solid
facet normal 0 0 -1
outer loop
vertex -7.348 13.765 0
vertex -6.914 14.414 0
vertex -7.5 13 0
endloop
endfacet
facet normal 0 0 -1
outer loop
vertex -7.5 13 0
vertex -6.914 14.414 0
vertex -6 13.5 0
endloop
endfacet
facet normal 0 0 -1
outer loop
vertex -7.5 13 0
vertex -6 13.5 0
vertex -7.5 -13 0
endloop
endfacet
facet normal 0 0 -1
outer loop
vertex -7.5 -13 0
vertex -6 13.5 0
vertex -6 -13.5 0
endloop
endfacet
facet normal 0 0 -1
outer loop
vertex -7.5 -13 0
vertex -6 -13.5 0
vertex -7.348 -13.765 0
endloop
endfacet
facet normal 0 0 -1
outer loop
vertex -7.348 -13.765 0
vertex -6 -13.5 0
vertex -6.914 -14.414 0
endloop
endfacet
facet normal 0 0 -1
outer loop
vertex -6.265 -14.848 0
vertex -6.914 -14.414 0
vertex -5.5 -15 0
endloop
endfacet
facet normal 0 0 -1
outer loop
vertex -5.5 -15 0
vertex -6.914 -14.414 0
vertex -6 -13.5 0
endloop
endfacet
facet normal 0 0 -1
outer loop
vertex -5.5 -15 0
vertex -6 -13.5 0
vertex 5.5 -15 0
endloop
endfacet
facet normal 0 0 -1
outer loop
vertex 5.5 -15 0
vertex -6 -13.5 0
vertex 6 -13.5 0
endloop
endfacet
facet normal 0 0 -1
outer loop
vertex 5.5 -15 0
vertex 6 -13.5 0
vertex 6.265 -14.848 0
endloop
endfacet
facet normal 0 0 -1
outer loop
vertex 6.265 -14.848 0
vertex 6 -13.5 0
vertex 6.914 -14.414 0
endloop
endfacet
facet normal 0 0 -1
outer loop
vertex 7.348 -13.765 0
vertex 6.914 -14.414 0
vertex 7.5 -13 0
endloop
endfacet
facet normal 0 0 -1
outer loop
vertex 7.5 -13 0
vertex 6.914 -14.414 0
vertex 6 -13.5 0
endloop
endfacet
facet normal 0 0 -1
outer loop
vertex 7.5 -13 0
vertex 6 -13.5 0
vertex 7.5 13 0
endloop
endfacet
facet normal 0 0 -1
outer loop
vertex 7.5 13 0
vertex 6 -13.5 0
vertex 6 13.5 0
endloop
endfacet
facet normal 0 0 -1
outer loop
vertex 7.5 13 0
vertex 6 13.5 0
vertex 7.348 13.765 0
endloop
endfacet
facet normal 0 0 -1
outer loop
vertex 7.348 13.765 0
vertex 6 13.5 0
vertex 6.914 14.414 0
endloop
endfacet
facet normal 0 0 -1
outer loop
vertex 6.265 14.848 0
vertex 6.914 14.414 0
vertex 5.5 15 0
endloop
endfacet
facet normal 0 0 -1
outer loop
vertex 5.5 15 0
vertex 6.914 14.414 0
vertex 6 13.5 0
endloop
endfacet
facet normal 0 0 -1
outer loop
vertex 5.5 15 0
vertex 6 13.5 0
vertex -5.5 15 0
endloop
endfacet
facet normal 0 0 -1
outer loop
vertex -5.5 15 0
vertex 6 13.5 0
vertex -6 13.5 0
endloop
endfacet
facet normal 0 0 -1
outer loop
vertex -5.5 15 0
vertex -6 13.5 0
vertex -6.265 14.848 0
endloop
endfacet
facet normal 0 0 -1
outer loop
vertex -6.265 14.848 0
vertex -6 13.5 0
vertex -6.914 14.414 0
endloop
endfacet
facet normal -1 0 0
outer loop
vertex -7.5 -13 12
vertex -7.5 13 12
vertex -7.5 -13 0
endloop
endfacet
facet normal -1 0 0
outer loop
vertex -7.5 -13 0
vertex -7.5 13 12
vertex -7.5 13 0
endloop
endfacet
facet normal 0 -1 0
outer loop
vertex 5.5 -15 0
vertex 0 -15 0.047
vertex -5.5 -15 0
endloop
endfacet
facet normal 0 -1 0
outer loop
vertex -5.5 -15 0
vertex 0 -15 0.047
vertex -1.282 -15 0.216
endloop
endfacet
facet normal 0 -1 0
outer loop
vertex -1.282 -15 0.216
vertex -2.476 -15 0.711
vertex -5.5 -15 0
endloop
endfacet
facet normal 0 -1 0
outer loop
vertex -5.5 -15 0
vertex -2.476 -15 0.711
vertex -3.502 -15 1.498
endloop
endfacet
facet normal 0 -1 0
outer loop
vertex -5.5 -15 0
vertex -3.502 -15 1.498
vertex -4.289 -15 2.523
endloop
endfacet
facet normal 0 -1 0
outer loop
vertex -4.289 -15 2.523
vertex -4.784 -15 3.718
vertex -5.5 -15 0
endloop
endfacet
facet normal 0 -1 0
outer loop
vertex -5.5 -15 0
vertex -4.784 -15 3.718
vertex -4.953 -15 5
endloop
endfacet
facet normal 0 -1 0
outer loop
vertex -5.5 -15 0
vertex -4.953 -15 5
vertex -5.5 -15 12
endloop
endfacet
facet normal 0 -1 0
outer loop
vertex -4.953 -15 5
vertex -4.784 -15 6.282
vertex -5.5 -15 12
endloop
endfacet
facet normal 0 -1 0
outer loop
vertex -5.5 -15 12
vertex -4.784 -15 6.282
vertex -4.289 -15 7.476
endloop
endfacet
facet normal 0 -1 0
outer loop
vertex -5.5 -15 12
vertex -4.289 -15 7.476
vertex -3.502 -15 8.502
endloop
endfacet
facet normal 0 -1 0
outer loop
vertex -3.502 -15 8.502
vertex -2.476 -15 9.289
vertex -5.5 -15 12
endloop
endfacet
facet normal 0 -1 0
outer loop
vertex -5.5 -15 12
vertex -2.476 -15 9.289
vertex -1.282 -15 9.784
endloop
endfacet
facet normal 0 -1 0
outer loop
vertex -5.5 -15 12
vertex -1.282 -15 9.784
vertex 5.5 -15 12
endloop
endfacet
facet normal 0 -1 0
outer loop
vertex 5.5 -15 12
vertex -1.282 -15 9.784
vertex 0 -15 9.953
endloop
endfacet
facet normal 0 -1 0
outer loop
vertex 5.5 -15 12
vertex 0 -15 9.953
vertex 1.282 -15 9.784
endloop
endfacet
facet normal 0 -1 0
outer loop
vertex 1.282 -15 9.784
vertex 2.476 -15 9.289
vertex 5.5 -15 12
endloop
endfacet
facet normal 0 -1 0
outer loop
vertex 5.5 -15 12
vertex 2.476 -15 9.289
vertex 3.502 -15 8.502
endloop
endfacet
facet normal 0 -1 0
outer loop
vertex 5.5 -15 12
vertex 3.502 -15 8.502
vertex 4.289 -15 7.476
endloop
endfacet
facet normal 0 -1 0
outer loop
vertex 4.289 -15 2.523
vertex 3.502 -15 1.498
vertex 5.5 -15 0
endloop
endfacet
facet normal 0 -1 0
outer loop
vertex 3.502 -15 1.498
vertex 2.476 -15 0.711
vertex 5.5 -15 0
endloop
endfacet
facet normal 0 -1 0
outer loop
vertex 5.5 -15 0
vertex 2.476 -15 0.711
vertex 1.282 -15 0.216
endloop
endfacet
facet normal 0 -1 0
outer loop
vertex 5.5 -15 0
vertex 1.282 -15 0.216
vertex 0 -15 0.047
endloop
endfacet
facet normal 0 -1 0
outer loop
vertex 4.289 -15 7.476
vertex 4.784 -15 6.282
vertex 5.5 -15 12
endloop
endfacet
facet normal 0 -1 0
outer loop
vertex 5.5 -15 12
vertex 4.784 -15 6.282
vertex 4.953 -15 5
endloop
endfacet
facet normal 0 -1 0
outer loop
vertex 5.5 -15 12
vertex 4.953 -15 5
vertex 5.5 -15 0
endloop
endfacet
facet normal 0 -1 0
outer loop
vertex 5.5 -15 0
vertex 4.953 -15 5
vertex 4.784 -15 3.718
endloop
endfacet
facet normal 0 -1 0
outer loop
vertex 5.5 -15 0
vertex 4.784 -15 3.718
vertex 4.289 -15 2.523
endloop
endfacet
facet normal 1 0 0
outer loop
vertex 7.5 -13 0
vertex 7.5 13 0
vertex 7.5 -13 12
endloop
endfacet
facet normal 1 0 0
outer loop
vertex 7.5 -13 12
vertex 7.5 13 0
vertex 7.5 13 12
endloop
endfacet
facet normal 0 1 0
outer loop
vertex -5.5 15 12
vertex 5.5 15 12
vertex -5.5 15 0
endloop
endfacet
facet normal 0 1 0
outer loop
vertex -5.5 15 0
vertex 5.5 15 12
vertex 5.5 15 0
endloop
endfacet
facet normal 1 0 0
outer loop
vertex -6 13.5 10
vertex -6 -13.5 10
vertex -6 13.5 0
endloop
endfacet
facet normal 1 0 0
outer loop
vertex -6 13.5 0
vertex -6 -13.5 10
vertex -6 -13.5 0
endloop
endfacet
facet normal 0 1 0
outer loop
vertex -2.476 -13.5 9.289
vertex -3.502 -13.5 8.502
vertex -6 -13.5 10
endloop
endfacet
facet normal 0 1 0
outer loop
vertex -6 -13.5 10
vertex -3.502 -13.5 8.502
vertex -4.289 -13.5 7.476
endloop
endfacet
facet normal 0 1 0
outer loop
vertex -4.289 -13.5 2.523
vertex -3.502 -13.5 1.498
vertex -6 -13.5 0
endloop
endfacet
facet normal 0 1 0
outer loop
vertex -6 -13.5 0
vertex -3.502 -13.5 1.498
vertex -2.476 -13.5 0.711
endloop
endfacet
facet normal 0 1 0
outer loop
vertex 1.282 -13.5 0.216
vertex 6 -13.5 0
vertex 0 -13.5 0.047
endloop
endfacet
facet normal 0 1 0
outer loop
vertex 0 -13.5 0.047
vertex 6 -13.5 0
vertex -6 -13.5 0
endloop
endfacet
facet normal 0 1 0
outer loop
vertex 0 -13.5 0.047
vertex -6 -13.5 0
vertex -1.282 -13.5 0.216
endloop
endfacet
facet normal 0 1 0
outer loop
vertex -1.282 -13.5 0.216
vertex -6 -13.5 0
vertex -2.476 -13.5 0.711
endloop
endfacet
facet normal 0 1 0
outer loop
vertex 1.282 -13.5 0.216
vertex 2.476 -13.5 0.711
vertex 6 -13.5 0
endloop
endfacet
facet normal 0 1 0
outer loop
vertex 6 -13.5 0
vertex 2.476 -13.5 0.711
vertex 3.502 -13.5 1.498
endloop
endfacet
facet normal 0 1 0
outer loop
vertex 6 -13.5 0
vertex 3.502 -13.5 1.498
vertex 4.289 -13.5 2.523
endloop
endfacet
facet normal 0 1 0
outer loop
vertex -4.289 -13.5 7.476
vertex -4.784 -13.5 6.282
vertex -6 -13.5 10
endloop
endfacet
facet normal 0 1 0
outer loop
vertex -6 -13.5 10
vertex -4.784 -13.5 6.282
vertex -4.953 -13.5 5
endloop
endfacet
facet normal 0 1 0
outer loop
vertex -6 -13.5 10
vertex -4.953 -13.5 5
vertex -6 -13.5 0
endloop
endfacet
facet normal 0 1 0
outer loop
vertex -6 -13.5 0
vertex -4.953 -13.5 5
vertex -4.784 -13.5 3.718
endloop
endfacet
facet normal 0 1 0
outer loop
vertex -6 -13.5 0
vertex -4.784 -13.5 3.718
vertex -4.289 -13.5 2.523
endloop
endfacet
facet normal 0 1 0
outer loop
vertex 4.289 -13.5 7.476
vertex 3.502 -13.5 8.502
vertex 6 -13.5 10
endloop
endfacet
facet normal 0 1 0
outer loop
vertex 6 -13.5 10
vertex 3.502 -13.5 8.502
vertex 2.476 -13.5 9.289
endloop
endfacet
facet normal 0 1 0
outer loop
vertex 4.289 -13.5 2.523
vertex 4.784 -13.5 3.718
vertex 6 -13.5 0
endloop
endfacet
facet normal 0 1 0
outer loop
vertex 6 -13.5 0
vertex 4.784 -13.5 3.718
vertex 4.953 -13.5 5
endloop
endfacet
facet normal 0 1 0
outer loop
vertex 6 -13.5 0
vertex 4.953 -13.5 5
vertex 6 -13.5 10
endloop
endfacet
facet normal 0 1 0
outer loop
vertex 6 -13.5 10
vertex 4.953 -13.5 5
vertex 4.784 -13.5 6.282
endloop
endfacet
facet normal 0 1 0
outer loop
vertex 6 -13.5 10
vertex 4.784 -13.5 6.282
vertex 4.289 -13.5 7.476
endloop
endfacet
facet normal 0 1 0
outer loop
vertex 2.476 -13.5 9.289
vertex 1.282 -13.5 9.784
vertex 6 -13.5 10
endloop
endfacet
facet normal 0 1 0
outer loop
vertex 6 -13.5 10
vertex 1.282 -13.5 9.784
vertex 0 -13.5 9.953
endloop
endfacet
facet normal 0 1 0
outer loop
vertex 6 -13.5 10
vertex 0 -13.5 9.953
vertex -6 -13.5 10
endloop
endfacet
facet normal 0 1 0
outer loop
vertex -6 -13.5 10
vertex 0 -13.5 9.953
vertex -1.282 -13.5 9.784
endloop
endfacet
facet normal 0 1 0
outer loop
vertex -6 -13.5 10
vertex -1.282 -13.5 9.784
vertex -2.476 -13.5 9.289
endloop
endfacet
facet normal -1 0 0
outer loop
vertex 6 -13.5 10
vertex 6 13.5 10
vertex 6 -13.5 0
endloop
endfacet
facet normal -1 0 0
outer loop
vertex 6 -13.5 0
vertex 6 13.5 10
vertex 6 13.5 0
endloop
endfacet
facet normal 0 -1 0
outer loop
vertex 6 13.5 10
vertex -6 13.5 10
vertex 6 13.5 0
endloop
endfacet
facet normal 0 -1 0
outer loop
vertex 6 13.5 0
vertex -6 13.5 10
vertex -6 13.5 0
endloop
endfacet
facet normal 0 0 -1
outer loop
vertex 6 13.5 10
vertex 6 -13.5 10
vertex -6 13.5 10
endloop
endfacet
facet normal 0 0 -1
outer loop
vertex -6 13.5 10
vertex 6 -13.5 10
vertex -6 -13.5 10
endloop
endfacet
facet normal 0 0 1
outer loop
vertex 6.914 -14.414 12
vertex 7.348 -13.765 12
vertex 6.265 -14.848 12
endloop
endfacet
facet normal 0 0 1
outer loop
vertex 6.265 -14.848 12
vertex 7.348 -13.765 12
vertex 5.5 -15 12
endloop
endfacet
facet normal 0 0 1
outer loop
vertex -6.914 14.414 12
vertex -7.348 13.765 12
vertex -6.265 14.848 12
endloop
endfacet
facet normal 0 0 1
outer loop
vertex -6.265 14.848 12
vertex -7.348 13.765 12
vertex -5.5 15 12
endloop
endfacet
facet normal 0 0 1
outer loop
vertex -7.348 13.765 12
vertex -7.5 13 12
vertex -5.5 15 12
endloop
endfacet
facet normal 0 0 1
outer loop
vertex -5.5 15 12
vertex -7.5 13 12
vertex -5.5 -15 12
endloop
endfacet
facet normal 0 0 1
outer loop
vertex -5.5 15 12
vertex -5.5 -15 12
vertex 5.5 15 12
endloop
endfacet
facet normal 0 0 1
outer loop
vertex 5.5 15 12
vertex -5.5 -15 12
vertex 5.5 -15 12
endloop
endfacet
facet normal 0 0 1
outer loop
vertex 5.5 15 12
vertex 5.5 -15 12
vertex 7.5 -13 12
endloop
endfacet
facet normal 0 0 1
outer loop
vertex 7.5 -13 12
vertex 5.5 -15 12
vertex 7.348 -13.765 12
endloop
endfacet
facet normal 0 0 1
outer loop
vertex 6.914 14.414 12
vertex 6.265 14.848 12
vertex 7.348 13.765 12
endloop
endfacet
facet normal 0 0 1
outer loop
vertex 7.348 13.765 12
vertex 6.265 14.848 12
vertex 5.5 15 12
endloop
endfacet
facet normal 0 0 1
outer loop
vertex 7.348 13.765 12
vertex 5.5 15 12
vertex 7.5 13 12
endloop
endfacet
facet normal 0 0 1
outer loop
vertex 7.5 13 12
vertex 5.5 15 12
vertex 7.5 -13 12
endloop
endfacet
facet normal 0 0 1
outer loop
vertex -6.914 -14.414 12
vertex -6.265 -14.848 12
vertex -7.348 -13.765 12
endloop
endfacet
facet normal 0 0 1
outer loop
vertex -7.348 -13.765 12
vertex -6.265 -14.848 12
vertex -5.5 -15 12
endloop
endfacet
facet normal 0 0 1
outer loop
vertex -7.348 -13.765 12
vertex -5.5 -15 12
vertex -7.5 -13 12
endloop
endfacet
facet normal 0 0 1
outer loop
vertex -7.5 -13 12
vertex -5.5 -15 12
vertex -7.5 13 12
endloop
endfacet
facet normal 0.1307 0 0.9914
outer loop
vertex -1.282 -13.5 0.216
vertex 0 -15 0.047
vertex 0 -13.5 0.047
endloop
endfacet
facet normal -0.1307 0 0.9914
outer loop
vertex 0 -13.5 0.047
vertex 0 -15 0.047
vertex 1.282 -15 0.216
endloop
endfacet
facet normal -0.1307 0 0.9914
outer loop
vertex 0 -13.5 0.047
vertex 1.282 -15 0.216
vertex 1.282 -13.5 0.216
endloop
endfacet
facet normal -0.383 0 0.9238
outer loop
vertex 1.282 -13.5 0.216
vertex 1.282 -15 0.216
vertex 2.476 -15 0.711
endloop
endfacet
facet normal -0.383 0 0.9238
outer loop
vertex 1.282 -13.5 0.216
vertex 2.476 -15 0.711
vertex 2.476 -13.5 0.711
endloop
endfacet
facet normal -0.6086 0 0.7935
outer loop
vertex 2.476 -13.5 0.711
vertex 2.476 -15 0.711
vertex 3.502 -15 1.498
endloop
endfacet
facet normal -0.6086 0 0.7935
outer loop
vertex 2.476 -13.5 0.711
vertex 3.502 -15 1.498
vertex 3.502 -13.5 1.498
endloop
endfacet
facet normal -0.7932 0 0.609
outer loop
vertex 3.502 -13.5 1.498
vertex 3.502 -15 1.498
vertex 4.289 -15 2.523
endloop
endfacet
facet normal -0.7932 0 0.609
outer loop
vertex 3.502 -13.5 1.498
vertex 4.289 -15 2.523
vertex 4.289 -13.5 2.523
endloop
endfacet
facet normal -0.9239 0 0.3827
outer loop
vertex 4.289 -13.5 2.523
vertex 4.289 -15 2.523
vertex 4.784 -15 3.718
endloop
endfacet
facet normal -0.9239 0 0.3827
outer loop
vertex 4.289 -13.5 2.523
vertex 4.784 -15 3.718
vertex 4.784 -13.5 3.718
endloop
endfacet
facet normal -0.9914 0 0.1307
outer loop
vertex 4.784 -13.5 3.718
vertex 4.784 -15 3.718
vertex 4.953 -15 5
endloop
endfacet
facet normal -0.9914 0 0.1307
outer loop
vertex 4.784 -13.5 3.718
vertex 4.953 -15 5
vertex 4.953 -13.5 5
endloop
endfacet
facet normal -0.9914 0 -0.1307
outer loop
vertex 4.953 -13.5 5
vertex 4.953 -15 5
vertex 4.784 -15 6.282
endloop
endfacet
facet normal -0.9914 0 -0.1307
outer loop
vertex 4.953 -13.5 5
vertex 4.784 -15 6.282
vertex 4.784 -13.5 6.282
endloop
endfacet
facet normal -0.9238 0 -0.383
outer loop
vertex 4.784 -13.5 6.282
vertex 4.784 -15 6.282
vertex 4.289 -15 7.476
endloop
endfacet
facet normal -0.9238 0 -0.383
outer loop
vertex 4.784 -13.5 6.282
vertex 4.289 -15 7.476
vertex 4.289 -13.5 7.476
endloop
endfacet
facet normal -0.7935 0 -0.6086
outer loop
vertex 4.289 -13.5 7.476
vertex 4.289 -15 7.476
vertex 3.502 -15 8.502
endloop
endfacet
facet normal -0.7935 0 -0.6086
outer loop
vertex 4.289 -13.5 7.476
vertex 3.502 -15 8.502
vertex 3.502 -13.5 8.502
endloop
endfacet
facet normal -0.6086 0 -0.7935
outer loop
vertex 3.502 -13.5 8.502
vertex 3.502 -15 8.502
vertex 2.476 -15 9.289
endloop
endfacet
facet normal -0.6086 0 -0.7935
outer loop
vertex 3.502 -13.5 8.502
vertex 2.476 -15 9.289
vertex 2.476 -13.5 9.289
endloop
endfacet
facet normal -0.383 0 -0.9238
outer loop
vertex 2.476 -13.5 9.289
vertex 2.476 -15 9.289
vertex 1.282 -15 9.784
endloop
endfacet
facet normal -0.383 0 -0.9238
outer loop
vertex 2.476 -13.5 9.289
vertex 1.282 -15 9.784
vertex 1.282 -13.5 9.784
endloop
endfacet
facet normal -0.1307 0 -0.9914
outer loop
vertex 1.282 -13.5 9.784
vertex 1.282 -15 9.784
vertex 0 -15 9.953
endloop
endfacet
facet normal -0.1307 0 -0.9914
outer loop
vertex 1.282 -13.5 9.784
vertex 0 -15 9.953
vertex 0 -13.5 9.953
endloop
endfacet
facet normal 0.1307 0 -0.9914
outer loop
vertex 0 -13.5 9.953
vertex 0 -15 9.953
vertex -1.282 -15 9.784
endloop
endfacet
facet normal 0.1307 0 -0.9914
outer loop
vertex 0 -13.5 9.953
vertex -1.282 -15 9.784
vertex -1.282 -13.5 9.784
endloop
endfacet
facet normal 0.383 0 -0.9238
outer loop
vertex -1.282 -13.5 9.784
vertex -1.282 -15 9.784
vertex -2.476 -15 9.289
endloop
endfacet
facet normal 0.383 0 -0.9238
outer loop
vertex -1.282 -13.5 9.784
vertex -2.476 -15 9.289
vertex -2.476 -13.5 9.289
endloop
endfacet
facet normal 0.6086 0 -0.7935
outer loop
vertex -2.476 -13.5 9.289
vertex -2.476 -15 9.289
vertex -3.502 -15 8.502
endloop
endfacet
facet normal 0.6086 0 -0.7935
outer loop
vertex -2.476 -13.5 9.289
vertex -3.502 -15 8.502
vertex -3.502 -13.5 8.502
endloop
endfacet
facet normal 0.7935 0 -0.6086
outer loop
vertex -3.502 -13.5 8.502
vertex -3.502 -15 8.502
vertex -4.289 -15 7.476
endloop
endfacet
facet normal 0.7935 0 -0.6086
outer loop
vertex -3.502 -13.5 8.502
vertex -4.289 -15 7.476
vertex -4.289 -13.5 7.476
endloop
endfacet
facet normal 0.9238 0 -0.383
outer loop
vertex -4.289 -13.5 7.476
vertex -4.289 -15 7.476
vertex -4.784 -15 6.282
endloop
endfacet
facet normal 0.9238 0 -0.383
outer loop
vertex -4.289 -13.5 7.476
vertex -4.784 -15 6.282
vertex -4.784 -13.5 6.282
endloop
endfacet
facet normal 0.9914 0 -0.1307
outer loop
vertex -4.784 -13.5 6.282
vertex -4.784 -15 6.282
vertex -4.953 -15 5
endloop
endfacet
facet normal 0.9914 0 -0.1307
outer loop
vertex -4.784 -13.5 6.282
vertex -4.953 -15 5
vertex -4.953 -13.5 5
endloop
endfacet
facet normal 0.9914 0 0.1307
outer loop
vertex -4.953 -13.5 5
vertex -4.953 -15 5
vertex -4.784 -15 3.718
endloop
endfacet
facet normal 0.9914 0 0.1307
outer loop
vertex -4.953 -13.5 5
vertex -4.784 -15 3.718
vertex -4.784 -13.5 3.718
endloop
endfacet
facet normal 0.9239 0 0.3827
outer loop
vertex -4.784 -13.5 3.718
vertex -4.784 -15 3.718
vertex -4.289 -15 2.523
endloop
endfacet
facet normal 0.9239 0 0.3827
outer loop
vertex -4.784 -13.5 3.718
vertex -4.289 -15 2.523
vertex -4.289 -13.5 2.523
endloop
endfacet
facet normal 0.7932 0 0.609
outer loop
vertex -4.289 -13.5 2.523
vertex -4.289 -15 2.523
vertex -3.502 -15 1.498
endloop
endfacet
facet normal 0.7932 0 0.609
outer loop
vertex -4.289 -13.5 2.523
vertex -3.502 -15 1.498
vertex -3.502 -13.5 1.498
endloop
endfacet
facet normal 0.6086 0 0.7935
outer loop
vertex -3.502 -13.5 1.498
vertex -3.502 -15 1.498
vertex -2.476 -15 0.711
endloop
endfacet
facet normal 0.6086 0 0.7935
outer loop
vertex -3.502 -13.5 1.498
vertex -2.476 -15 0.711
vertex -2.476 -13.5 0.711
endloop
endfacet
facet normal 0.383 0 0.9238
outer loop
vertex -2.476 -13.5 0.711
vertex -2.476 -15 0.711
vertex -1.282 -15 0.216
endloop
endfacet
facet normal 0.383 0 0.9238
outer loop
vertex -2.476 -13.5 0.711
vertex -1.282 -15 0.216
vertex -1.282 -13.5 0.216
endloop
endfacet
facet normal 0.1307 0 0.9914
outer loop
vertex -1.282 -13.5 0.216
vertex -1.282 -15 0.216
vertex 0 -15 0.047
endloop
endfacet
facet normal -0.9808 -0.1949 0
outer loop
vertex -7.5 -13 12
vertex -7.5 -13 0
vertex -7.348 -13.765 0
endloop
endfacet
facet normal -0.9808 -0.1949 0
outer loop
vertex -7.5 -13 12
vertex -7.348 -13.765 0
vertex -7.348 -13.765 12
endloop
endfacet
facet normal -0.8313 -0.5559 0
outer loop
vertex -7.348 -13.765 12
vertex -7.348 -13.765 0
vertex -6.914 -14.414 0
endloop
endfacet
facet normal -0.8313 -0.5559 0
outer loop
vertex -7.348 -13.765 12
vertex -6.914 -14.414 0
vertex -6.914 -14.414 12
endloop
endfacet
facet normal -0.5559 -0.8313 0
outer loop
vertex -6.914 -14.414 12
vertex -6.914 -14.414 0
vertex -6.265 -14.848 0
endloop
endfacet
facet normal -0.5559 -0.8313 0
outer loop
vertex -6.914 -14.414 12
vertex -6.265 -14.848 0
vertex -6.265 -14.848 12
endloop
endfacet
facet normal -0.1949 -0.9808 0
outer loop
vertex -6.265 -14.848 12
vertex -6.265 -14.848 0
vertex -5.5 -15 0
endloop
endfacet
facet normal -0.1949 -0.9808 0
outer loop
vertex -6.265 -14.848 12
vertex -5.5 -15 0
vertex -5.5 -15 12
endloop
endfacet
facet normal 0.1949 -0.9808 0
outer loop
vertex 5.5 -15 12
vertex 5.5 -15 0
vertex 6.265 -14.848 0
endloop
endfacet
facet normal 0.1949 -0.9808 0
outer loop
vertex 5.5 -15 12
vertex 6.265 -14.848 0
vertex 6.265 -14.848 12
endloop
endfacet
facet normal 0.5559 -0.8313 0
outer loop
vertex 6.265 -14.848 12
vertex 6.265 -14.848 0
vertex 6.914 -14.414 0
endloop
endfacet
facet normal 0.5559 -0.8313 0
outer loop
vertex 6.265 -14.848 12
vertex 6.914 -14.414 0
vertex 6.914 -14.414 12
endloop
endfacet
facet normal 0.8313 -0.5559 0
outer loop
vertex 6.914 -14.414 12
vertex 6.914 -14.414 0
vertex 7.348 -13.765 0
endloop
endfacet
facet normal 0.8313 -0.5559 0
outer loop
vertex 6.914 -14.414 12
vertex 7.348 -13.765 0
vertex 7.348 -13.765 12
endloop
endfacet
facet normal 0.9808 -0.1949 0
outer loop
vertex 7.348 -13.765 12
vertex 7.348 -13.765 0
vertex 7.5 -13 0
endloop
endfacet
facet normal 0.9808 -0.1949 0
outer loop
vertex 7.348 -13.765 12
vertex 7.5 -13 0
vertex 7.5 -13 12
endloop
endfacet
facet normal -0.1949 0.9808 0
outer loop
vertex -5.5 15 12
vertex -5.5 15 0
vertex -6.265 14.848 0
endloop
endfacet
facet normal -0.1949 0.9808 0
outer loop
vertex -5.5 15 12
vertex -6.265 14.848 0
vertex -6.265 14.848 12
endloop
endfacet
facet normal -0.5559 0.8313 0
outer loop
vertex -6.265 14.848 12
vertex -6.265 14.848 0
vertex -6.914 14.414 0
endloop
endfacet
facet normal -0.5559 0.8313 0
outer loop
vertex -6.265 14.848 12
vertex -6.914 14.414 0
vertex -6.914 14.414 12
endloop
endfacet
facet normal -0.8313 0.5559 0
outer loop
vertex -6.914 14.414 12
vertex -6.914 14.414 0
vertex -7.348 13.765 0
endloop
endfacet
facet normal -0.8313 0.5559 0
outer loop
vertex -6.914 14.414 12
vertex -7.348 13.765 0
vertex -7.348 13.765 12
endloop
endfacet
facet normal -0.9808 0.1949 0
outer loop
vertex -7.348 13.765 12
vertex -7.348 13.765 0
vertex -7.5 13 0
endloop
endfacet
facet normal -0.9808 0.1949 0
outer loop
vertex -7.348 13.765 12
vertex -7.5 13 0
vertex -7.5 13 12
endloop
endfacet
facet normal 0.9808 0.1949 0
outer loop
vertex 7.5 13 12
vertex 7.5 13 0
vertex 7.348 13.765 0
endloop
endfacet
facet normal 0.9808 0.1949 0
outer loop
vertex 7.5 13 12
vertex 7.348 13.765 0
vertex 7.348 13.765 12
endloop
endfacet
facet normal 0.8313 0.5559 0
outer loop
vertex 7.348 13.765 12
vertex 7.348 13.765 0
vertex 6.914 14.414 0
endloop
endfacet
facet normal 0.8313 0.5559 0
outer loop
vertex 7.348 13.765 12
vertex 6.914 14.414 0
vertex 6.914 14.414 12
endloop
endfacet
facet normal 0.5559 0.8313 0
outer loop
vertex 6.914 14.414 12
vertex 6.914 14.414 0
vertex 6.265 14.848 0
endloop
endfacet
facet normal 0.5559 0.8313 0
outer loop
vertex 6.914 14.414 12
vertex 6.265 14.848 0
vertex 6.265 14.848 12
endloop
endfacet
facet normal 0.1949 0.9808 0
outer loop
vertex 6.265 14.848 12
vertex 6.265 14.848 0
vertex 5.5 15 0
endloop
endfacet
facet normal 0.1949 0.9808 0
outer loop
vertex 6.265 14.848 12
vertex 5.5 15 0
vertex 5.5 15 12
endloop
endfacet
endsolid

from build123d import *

# Parameters (mm, degrees)
SKETCH1_W                       = 15
SKETCH1_H                       = 30
SKETCH1_W_2                     = 12
SKETCH1_H_2                     = 27
BOSS_EXTRUDE1_DEPTH             = 10
BOSS_EXTRUDE2_REACH             = 33.121
SKETCH2_W                       = 15
SKETCH2_H                       = 2
BOSS_EXTRUDE2_DIRECTION_2_REACH = 33.121
SKETCH3_R                       = 4.953
CUT_EXTRUDE2_DEPTH              = 10
FILLET1_R                       = 2


with BuildPart() as part:
    # Sketch1 → Boss-Extrude1 (new body)
    with BuildSketch(Plane.XY):
        Rectangle(SKETCH1_W, SKETCH1_H)
        Rectangle(SKETCH1_W_2, SKETCH1_H_2, mode=Mode.SUBTRACT)
    extrude(amount=BOSS_EXTRUDE1_DEPTH)

    # Boss-Extrude2: up to this face of the body (flat: up to its plane)
    boss_extrude2_end = Plane(part.part.faces().sort_by_distance((0, 15, 5))[0])
    # Sketch2 → Boss-Extrude2 (add, up to the picked face)
    with BuildSketch(Plane(origin=(0, -13.5, 0), x_dir=(1, 0, 0), z_dir=(0, 1, 0)), mode=Mode.PRIVATE) as boss_extrude2_sk1:
        with Locations((0, -11)):
            Rectangle(SKETCH2_W, SKETCH2_H)
    boss_extrude2_tool1 = split(extrude(boss_extrude2_sk1.sketch, amount=BOSS_EXTRUDE2_REACH, mode=Mode.PRIVATE), bisect_by=boss_extrude2_end, keep=Keep.BOTH, mode=Mode.PRIVATE)
    add(boss_extrude2_tool1.solids().sort_by(Axis((0, -13.5, 11), (0, 1, 0)))[0])

    # Boss-Extrude2 direction 2: up to this face of the body (flat: up to its plane)
    boss_extrude2_direction_2_end = Plane(part.part.faces().sort_by_distance((0, -15, 5))[0])
    # Sketch2 → Boss-Extrude2 direction 2 (add, up to the picked face)
    with BuildSketch(Plane(origin=(0, -13.5, 0), x_dir=(1, 0, 0), z_dir=(0, 1, 0)), mode=Mode.PRIVATE) as boss_extrude2_direction_2_sk1:
        with Locations((0, -11)):
            Rectangle(SKETCH2_W, SKETCH2_H)
    boss_extrude2_direction_2_tool1 = split(extrude(boss_extrude2_direction_2_sk1.sketch, amount=-BOSS_EXTRUDE2_DIRECTION_2_REACH, mode=Mode.PRIVATE), bisect_by=boss_extrude2_direction_2_end, keep=Keep.BOTH, mode=Mode.PRIVATE)
    add(boss_extrude2_direction_2_tool1.solids().sort_by(Axis((0, -13.5, 11), (0, -1, 0)))[0])

    # Sketch3 → Cut-Extrude2 (cut)
    with BuildSketch(Plane.XZ.offset(15)):
        with Locations(Location((0, 5, 0), (0, 0, 270))):
            Circle(SKETCH3_R)
    extrude(amount=-CUT_EXTRUDE2_DEPTH, mode=Mode.SUBTRACT)

    # Fillet1
    fillet1_edges = [part.edges().sort_by_distance(p)[0] for p in [
        (-7.5, 15, 6),
        (7.5, 15, 6),
        (7.5, -15, 6),
        (-7.5, -15, 6),
    ]]
    fillet(fillet1_edges, radius=FILLET1_R)


solid = part.part
